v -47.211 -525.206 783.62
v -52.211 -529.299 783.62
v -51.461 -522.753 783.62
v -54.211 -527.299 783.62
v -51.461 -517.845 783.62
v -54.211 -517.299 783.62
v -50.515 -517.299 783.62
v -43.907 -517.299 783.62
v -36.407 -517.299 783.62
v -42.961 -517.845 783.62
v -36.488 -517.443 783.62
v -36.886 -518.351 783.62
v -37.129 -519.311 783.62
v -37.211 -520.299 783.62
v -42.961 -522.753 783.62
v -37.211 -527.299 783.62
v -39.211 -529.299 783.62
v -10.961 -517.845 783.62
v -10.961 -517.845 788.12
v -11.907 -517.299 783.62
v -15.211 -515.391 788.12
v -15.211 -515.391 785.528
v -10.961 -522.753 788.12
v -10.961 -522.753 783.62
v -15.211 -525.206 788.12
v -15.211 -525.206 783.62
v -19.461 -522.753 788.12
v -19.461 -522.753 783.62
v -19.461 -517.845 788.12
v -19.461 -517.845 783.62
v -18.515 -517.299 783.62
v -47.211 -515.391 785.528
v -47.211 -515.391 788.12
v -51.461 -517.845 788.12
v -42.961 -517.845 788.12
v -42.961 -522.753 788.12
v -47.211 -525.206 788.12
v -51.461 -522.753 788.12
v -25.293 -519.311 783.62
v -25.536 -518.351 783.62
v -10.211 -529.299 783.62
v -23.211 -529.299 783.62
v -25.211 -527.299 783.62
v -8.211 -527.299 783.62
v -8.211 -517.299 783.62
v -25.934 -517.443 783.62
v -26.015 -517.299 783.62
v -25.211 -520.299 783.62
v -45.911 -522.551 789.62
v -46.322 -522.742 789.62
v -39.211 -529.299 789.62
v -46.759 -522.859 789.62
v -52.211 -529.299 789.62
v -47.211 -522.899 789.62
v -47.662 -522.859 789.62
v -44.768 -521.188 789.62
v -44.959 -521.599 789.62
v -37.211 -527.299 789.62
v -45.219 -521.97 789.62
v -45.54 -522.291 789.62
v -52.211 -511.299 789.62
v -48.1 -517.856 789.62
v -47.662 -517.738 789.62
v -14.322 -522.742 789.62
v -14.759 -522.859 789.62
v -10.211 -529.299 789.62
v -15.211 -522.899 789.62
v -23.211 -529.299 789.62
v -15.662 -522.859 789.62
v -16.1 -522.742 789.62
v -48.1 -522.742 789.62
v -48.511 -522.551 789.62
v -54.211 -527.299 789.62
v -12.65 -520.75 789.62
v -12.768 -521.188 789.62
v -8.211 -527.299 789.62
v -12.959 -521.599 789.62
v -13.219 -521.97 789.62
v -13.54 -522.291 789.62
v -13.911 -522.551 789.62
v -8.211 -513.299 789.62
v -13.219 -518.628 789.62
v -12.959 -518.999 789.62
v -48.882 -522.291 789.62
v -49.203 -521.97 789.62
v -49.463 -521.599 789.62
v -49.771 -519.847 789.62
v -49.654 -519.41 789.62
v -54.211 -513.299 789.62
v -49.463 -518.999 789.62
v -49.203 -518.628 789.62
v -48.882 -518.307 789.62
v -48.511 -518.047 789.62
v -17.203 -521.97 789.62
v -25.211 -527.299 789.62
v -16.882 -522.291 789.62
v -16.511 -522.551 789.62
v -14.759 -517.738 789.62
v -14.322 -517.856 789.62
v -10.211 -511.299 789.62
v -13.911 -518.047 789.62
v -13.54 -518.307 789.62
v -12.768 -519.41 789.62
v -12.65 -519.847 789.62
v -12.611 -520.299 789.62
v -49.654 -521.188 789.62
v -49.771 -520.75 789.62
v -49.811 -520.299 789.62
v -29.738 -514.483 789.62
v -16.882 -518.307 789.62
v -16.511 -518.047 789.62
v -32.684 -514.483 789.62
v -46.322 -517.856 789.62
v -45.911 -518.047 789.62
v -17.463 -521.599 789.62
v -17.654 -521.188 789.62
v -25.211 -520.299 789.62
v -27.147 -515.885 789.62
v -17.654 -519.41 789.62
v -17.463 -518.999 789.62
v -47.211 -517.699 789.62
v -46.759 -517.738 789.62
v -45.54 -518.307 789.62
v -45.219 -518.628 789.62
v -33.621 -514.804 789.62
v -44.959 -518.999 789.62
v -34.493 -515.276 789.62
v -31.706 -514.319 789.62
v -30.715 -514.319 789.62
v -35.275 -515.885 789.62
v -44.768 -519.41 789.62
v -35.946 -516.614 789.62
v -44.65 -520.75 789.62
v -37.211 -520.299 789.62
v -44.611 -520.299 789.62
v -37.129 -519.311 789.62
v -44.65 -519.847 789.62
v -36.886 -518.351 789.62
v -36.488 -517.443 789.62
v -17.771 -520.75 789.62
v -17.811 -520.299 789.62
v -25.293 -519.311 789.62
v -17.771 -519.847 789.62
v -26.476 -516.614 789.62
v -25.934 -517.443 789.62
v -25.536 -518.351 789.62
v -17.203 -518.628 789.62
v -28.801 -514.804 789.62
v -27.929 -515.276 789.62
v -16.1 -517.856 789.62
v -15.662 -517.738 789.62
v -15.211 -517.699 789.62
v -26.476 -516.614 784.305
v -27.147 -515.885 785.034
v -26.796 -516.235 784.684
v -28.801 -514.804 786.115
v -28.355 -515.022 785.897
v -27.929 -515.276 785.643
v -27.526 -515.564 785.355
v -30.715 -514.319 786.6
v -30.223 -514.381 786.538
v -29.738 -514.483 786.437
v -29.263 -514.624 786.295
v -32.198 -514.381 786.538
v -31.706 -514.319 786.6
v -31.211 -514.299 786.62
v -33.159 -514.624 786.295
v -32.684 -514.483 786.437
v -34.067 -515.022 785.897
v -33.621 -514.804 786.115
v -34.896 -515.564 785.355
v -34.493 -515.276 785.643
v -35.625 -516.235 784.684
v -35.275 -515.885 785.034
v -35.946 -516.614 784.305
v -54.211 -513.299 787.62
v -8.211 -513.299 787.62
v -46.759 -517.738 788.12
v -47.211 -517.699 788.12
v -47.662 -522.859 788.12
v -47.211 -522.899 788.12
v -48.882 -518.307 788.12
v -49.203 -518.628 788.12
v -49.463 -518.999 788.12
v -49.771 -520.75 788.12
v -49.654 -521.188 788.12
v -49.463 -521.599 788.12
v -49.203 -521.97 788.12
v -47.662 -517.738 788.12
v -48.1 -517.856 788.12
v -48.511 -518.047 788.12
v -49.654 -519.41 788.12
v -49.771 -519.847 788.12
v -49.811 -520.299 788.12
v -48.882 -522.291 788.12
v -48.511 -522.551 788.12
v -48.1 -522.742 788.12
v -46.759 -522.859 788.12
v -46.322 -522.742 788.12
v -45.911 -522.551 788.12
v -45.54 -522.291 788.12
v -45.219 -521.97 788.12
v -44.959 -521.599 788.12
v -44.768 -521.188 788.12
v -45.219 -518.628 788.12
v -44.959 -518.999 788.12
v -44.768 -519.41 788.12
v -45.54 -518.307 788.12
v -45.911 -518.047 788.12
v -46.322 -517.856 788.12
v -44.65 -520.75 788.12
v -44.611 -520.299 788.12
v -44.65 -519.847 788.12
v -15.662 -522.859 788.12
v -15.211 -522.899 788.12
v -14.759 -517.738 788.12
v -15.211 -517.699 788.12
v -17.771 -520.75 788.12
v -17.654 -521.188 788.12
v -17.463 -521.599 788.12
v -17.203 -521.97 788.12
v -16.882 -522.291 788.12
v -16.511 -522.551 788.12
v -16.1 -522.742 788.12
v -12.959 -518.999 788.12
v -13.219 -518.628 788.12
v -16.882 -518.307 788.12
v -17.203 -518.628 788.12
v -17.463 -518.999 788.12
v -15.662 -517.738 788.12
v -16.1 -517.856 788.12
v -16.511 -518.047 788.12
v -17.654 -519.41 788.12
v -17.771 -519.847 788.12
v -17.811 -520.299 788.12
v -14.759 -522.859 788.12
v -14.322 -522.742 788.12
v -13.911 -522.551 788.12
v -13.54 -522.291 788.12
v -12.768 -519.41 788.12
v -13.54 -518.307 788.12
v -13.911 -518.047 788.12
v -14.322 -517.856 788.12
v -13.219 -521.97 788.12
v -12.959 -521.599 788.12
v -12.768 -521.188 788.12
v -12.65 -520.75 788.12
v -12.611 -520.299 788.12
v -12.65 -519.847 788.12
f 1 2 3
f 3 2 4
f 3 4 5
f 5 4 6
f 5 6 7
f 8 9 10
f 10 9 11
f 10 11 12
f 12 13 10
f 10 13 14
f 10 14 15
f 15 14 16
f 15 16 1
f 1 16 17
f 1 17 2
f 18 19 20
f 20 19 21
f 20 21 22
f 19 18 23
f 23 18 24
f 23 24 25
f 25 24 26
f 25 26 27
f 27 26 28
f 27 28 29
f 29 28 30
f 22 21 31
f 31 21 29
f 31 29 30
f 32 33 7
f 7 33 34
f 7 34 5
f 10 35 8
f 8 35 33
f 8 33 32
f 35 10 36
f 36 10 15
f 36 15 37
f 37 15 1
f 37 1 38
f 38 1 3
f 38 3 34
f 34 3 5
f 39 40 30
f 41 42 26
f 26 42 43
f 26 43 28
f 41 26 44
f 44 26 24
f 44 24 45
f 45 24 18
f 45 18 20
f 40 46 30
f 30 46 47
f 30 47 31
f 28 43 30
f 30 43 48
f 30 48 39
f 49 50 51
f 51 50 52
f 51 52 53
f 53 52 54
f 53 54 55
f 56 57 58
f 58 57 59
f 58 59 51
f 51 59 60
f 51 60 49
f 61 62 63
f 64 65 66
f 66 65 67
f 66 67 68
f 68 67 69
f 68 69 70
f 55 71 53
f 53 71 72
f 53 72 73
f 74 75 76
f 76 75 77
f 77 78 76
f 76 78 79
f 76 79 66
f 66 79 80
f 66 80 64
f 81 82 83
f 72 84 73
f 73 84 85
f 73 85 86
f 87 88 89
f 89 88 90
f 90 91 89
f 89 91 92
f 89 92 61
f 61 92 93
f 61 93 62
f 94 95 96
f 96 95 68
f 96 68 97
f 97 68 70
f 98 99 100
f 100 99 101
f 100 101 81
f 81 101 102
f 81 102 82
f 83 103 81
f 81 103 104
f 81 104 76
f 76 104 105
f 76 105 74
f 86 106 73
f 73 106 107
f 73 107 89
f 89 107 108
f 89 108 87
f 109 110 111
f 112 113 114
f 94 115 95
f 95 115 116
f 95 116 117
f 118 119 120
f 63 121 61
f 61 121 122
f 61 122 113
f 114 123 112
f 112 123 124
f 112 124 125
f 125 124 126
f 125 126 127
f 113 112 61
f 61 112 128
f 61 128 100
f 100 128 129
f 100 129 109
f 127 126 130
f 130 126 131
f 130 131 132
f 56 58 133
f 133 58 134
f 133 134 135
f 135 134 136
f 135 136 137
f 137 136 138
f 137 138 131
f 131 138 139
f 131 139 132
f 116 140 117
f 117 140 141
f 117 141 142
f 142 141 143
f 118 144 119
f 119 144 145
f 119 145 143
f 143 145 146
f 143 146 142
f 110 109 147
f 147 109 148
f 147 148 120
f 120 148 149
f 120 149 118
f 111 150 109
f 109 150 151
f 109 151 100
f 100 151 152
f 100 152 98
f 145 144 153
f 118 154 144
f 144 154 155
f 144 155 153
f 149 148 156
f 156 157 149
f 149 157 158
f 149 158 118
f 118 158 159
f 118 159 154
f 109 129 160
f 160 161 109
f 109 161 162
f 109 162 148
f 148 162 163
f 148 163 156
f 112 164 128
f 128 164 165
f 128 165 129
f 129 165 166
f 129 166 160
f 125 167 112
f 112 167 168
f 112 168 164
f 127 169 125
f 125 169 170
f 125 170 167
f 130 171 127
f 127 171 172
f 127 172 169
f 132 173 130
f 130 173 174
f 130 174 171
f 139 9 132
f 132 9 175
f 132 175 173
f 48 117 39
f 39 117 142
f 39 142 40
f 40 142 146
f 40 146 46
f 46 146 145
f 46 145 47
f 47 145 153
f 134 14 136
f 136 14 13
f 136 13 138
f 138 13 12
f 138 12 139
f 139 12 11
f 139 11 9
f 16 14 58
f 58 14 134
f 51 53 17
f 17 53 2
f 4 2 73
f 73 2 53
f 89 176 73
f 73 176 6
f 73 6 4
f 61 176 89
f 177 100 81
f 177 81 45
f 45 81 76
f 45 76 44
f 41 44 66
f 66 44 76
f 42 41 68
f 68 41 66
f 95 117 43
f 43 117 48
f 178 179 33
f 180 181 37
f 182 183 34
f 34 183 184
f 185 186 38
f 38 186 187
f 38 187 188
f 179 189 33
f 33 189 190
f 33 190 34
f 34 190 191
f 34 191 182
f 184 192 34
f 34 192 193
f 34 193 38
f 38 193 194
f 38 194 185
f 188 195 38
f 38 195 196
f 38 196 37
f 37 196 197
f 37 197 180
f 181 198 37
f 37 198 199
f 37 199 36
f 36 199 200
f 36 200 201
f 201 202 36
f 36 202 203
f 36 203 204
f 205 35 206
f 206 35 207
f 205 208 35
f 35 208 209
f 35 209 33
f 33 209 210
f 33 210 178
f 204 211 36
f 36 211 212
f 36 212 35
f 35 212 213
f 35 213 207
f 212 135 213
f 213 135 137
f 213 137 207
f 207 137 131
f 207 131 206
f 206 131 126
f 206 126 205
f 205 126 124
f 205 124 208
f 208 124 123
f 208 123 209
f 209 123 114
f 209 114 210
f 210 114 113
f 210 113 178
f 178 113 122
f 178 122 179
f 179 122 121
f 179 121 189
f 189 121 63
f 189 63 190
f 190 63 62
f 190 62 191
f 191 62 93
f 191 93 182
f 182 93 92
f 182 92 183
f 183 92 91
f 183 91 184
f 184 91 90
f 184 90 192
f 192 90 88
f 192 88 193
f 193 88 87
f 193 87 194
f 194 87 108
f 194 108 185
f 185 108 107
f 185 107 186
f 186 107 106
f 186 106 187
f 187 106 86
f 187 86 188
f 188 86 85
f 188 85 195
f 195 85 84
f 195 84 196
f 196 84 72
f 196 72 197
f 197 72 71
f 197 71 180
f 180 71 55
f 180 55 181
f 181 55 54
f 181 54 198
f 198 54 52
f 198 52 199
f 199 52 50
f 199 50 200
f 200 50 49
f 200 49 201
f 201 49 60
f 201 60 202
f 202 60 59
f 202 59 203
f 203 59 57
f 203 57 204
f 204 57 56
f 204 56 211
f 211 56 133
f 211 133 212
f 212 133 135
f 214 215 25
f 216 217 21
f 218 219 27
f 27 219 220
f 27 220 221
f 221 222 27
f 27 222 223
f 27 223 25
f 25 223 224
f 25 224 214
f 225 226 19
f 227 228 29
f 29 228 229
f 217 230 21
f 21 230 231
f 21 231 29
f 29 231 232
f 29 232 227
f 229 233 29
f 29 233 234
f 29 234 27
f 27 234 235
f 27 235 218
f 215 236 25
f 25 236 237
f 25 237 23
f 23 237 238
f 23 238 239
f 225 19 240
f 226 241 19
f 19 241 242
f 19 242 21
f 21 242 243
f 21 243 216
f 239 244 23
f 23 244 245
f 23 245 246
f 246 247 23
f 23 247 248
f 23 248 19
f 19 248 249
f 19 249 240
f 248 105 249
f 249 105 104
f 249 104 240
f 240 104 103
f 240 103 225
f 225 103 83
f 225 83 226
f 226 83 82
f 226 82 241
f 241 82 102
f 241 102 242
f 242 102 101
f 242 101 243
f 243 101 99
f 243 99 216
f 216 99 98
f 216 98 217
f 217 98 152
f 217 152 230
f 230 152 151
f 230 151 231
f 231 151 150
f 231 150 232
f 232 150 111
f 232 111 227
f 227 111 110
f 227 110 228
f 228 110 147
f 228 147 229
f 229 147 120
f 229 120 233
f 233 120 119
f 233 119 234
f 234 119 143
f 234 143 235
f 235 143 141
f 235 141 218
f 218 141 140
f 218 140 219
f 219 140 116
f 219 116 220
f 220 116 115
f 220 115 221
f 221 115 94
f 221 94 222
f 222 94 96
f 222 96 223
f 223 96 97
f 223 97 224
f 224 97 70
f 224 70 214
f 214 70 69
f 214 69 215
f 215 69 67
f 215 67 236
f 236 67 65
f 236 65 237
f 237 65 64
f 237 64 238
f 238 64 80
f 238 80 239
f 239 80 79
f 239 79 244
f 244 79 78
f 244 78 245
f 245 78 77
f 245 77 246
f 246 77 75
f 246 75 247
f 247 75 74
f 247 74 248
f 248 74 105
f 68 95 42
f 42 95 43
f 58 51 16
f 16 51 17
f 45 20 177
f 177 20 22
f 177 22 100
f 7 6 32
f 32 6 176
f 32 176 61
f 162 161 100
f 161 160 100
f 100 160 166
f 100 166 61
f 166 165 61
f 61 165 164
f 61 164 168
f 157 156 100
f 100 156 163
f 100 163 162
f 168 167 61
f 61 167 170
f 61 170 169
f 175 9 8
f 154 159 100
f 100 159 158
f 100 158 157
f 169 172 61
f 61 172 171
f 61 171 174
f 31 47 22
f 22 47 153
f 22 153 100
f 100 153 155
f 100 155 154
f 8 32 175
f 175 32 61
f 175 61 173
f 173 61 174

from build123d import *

# Parameters (mm, degrees)
BOSS_EXTRUDE1_DEPTH = 6
SKETCH2_R           = 2.6
BOSS_EXTRUDE2_DEPTH = 1.5
CHAMFER1_SIZE       = 2
CHAMFER2_SIZE       = 6


with BuildPart() as part:
    # Sketch1 → Boss-Extrude1 (new body)
    with BuildSketch(Plane(origin=(0, 0, 789.620141885), x_dir=(-1, 0, 0), z_dir=(0, 0, -1))):
        with BuildLine():
            Line((8.210843614, -513.298939869), (8.210843614, -527.298939869))
            Line((8.210843614, -527.298939869), (10.210843614, -529.298939869))
            Line((10.210843614, -529.298939869), (25.210843614, -529.298939869))
            Line((25.210843614, -529.298939869), (25.210843614, -520.298939869))
            ThreePointArc((25.210843614, -520.298939869), (31.210843614, -514.298939869), (37.210843614, -520.298939869))
            Line((37.210843614, -520.298939869), (37.210843614, -529.298939869))
            Line((37.210843614, -529.298939869), (52.210843614, -529.298939869))
            Line((52.210843614, -529.298939869), (54.210843614, -527.298939869))
            Line((54.210843614, -527.298939869), (54.210843614, -513.298939869))
            Line((54.210843614, -513.298939869), (52.210843614, -511.298939869))
            Line((52.210843614, -511.298939869), (10.210843614, -511.298939869))
            Line((10.210843614, -511.298939869), (8.210843614, -513.298939869))
        make_face()
        Polygon((10.960843614, -517.845201225), (10.960843614, -522.752678513), (15.210843614, -525.206417157), (19.460843614, -522.752678513), (19.460843614, -517.845201225), (15.210843614, -515.391462581), align=None, mode=Mode.SUBTRACT)
        Polygon((47.210843614, -515.391462581), (42.960843614, -517.845201225), (42.960843614, -522.752678513), (47.210843614, -525.206417157), (51.460843614, -522.752678513), (51.460843614, -517.845201225), align=None, mode=Mode.SUBTRACT)
    extrude(amount=BOSS_EXTRUDE1_DEPTH)

    # Sketch2 → Boss-Extrude2 (add)
    # profile 1 of 2: a face of its own
    with BuildSketch(Plane.XY.offset(789.620141885)):
        Polygon((-10.960843614, -517.845201225), (-15.210843614, -515.391462581), (-19.460843614, -517.845201225), (-19.460843614, -522.752678513), (-15.210843614, -525.206417157), (-10.960843614, -522.752678513), align=None)
        with Locations((-15.210843614, -520.298939869)):
            Circle(SKETCH2_R, mode=Mode.SUBTRACT)
    # profile 2 of 2: a face of its own
    with BuildSketch(Plane.XY.offset(789.620141885)):
        Polygon((-47.210843614, -515.391462581), (-51.460843614, -517.845201225), (-51.460843614, -522.752678513), (-47.210843614, -525.206417157), (-42.960843614, -522.752678513), (-42.960843614, -517.845201225), align=None)
        with Locations((-47.210843614, -520.298939869)):
            Circle(SKETCH2_R, mode=Mode.SUBTRACT)
    extrude(amount=-BOSS_EXTRUDE2_DEPTH)

    # Chamfer1
    chamfer1_edges = [part.edges().sort_by_distance(p)[0] for p in [
        (-25.210843614, -529.298939869, 786.620141885),
        (-37.210843614, -529.298939869, 786.620141885),
    ]]
    chamfer(chamfer1_edges, length=CHAMFER1_SIZE)

    # Chamfer2
    # the kernel refuses this chamfer: 6 mm, written as the material it takes off along each edge
    with BuildSketch(Plane(origin=(-67.640941541, -511.298939869, 783.620141885), x_dir=(0, 0.027495876610582292, 0.9996219169112969), z_dir=(1, 0, 0))) as chamfer2_piece_1:
        Polygon((CHAMFER2_SIZE * 0.999621916911, CHAMFER2_SIZE * 0.0274958766106), (-CHAMFER2_SIZE * 0.0274958766106, CHAMFER2_SIZE * 0.999621916911), (0, 0), align=None)
    extrude(amount=72.860195856, mode=Mode.SUBTRACT)


solid = part.part
